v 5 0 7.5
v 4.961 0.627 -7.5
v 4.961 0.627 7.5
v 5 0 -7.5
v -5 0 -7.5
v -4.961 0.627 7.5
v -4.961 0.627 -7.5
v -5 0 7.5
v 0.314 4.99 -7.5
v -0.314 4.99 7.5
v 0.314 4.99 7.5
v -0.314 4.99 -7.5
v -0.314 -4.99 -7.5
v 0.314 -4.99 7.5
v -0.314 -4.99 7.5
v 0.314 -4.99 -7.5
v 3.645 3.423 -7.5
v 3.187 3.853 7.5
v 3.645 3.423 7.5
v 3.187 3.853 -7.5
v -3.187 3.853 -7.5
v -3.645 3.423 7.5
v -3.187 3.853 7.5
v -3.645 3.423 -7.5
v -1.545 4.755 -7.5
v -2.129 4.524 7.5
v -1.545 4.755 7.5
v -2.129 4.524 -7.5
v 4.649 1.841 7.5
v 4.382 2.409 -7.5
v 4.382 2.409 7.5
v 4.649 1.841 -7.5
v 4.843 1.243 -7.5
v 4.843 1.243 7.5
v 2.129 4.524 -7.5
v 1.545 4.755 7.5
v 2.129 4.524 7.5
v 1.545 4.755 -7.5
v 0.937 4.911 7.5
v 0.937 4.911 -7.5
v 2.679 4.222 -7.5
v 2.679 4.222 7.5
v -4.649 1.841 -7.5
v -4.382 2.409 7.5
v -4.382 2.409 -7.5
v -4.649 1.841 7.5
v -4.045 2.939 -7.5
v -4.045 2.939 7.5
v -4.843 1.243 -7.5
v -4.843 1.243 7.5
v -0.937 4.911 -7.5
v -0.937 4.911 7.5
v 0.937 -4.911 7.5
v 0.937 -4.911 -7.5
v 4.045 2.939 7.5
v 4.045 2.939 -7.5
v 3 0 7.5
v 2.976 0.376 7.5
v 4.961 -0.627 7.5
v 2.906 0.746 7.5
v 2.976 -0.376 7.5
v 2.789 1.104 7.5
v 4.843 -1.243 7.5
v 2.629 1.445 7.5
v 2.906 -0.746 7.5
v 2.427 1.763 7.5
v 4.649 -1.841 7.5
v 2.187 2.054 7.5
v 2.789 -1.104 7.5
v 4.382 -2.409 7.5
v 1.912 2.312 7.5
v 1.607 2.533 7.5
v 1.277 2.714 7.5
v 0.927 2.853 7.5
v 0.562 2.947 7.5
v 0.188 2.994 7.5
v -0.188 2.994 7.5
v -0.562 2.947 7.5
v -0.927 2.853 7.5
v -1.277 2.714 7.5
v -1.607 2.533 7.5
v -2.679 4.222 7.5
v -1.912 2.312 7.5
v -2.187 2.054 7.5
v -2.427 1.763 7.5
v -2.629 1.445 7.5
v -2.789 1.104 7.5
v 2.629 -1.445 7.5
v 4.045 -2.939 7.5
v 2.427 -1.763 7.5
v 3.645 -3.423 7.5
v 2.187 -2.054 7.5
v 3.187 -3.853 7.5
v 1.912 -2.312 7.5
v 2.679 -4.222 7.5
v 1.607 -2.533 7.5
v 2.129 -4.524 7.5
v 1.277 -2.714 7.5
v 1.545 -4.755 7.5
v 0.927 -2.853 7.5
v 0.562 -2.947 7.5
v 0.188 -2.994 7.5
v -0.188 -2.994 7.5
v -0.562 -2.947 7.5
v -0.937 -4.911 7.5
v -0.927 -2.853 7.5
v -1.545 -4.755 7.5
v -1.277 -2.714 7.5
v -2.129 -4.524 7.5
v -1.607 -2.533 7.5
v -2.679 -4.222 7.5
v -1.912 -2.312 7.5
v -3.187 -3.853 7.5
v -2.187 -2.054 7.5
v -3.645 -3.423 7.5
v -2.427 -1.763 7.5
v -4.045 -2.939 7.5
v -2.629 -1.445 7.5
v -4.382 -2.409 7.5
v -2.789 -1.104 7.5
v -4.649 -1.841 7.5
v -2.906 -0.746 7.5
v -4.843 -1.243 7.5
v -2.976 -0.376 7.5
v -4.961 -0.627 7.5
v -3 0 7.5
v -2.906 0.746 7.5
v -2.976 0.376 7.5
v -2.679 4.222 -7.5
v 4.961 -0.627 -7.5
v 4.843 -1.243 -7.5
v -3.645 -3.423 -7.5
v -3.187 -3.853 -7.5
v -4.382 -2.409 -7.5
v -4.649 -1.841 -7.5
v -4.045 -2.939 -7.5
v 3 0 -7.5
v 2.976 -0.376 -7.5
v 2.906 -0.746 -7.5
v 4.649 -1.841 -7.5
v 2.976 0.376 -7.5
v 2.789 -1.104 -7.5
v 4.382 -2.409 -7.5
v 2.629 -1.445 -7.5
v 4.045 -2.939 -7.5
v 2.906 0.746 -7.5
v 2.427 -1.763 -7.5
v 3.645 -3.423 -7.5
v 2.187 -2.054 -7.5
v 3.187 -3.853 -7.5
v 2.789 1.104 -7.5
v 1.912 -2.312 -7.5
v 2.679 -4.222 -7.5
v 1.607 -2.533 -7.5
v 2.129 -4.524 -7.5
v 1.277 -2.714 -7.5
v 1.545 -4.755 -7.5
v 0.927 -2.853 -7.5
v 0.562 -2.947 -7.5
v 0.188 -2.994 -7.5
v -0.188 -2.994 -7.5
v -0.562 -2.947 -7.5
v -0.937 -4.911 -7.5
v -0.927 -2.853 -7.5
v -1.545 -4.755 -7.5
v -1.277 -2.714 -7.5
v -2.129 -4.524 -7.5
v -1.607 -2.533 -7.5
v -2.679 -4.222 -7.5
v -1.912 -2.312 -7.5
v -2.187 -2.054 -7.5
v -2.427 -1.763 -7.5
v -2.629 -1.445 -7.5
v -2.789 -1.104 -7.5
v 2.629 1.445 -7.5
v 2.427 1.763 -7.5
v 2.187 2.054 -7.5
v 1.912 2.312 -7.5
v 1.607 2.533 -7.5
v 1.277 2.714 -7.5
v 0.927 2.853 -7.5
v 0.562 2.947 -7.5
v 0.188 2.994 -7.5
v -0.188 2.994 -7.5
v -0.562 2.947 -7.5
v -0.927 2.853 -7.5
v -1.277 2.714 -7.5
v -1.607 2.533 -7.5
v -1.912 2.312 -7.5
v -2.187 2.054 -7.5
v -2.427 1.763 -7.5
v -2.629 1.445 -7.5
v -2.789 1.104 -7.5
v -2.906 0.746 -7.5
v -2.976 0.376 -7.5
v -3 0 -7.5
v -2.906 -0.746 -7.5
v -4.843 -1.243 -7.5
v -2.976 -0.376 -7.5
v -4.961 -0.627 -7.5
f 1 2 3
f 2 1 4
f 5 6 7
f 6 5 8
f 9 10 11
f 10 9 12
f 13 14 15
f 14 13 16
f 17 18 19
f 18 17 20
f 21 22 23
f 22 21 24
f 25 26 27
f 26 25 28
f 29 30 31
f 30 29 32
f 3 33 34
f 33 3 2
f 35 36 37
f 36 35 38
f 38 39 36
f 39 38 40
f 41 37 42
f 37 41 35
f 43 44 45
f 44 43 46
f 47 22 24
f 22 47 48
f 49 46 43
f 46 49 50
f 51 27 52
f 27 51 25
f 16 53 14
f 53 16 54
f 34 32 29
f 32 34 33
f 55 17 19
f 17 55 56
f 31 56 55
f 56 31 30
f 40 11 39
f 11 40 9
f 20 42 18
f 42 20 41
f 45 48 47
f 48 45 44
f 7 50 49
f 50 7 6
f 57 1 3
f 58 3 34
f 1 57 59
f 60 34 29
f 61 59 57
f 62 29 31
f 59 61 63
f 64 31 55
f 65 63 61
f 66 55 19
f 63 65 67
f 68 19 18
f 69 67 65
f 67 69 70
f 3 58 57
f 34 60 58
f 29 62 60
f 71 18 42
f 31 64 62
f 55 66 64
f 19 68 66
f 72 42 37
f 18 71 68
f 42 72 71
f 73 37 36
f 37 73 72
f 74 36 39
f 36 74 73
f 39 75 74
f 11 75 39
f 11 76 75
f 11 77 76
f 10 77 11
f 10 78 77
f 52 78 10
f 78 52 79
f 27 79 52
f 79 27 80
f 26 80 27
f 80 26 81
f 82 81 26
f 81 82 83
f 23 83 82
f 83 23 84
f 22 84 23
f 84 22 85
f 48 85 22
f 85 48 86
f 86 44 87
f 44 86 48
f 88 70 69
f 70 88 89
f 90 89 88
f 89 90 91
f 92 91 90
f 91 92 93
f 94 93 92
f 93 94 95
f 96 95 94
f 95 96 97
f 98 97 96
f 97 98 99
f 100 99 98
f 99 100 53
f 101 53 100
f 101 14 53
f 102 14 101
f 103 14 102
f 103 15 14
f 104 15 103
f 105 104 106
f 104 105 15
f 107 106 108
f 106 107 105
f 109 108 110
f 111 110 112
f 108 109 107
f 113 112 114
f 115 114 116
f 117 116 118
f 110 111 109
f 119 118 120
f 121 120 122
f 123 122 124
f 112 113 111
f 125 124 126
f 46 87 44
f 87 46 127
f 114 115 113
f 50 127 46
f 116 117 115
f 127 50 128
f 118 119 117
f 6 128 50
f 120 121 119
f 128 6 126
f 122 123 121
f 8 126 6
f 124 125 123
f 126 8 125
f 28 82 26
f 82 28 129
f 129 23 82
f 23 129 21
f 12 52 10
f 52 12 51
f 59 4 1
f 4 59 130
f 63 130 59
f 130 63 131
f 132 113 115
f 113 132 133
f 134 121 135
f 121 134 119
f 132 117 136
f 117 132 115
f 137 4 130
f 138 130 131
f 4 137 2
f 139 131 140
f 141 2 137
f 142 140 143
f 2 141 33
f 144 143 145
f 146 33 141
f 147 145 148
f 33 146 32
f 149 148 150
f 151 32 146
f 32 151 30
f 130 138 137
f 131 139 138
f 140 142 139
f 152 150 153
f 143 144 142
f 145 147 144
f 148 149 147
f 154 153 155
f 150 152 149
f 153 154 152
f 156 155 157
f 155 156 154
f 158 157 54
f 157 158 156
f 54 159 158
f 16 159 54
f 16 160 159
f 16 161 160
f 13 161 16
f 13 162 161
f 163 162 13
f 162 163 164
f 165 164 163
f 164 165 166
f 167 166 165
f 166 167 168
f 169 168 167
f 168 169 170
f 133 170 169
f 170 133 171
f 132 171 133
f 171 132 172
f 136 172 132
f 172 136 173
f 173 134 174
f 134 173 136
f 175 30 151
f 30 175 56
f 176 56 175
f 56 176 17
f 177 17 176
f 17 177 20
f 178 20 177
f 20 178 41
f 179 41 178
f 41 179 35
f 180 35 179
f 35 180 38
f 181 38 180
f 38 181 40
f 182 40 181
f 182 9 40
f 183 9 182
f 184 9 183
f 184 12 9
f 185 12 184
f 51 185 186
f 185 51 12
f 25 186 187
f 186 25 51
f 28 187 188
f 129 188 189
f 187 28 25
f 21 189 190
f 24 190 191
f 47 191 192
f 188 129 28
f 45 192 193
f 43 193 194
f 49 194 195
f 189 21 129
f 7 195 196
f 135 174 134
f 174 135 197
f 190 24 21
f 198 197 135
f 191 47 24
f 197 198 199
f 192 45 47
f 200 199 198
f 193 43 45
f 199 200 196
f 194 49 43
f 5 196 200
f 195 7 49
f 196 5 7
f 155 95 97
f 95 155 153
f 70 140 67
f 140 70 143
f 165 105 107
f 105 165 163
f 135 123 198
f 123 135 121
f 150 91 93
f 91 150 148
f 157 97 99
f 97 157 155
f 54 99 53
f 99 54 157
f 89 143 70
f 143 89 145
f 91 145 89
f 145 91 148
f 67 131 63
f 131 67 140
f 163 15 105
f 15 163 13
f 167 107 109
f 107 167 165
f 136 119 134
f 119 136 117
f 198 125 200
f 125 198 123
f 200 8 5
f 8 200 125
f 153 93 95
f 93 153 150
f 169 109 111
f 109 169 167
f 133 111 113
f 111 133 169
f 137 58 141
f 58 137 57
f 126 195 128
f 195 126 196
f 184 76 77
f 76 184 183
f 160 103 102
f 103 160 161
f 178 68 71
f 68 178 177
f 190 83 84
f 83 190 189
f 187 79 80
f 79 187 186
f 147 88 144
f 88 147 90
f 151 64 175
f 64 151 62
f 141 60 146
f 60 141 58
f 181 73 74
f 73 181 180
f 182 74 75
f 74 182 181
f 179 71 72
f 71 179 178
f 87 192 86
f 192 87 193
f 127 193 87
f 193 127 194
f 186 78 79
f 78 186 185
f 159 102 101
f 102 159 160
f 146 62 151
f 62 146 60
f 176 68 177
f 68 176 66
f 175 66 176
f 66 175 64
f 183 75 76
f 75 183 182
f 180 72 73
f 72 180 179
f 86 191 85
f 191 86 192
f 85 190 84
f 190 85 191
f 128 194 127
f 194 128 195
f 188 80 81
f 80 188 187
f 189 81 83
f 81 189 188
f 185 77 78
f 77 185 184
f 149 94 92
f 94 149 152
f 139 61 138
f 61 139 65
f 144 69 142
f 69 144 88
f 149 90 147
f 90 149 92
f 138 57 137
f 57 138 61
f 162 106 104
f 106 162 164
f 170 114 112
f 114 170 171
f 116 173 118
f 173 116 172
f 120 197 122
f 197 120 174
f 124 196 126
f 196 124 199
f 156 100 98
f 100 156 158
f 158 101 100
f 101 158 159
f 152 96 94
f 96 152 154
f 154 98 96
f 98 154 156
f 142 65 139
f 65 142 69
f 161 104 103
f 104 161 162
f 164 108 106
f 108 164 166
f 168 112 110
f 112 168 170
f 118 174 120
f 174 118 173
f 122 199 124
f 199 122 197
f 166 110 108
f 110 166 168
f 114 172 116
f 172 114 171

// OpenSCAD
$fn = 50;


difference() {
	union() {
		translate(v = [0, 0, -7.5000000000]) {
			cylinder(h = 15, r = 5.0000000000);
		}
	}
	union() {
		translate(v = [0, 0, -100.0000000000]) {
			cylinder(h = 200, r = 3);
		}
	}
}
